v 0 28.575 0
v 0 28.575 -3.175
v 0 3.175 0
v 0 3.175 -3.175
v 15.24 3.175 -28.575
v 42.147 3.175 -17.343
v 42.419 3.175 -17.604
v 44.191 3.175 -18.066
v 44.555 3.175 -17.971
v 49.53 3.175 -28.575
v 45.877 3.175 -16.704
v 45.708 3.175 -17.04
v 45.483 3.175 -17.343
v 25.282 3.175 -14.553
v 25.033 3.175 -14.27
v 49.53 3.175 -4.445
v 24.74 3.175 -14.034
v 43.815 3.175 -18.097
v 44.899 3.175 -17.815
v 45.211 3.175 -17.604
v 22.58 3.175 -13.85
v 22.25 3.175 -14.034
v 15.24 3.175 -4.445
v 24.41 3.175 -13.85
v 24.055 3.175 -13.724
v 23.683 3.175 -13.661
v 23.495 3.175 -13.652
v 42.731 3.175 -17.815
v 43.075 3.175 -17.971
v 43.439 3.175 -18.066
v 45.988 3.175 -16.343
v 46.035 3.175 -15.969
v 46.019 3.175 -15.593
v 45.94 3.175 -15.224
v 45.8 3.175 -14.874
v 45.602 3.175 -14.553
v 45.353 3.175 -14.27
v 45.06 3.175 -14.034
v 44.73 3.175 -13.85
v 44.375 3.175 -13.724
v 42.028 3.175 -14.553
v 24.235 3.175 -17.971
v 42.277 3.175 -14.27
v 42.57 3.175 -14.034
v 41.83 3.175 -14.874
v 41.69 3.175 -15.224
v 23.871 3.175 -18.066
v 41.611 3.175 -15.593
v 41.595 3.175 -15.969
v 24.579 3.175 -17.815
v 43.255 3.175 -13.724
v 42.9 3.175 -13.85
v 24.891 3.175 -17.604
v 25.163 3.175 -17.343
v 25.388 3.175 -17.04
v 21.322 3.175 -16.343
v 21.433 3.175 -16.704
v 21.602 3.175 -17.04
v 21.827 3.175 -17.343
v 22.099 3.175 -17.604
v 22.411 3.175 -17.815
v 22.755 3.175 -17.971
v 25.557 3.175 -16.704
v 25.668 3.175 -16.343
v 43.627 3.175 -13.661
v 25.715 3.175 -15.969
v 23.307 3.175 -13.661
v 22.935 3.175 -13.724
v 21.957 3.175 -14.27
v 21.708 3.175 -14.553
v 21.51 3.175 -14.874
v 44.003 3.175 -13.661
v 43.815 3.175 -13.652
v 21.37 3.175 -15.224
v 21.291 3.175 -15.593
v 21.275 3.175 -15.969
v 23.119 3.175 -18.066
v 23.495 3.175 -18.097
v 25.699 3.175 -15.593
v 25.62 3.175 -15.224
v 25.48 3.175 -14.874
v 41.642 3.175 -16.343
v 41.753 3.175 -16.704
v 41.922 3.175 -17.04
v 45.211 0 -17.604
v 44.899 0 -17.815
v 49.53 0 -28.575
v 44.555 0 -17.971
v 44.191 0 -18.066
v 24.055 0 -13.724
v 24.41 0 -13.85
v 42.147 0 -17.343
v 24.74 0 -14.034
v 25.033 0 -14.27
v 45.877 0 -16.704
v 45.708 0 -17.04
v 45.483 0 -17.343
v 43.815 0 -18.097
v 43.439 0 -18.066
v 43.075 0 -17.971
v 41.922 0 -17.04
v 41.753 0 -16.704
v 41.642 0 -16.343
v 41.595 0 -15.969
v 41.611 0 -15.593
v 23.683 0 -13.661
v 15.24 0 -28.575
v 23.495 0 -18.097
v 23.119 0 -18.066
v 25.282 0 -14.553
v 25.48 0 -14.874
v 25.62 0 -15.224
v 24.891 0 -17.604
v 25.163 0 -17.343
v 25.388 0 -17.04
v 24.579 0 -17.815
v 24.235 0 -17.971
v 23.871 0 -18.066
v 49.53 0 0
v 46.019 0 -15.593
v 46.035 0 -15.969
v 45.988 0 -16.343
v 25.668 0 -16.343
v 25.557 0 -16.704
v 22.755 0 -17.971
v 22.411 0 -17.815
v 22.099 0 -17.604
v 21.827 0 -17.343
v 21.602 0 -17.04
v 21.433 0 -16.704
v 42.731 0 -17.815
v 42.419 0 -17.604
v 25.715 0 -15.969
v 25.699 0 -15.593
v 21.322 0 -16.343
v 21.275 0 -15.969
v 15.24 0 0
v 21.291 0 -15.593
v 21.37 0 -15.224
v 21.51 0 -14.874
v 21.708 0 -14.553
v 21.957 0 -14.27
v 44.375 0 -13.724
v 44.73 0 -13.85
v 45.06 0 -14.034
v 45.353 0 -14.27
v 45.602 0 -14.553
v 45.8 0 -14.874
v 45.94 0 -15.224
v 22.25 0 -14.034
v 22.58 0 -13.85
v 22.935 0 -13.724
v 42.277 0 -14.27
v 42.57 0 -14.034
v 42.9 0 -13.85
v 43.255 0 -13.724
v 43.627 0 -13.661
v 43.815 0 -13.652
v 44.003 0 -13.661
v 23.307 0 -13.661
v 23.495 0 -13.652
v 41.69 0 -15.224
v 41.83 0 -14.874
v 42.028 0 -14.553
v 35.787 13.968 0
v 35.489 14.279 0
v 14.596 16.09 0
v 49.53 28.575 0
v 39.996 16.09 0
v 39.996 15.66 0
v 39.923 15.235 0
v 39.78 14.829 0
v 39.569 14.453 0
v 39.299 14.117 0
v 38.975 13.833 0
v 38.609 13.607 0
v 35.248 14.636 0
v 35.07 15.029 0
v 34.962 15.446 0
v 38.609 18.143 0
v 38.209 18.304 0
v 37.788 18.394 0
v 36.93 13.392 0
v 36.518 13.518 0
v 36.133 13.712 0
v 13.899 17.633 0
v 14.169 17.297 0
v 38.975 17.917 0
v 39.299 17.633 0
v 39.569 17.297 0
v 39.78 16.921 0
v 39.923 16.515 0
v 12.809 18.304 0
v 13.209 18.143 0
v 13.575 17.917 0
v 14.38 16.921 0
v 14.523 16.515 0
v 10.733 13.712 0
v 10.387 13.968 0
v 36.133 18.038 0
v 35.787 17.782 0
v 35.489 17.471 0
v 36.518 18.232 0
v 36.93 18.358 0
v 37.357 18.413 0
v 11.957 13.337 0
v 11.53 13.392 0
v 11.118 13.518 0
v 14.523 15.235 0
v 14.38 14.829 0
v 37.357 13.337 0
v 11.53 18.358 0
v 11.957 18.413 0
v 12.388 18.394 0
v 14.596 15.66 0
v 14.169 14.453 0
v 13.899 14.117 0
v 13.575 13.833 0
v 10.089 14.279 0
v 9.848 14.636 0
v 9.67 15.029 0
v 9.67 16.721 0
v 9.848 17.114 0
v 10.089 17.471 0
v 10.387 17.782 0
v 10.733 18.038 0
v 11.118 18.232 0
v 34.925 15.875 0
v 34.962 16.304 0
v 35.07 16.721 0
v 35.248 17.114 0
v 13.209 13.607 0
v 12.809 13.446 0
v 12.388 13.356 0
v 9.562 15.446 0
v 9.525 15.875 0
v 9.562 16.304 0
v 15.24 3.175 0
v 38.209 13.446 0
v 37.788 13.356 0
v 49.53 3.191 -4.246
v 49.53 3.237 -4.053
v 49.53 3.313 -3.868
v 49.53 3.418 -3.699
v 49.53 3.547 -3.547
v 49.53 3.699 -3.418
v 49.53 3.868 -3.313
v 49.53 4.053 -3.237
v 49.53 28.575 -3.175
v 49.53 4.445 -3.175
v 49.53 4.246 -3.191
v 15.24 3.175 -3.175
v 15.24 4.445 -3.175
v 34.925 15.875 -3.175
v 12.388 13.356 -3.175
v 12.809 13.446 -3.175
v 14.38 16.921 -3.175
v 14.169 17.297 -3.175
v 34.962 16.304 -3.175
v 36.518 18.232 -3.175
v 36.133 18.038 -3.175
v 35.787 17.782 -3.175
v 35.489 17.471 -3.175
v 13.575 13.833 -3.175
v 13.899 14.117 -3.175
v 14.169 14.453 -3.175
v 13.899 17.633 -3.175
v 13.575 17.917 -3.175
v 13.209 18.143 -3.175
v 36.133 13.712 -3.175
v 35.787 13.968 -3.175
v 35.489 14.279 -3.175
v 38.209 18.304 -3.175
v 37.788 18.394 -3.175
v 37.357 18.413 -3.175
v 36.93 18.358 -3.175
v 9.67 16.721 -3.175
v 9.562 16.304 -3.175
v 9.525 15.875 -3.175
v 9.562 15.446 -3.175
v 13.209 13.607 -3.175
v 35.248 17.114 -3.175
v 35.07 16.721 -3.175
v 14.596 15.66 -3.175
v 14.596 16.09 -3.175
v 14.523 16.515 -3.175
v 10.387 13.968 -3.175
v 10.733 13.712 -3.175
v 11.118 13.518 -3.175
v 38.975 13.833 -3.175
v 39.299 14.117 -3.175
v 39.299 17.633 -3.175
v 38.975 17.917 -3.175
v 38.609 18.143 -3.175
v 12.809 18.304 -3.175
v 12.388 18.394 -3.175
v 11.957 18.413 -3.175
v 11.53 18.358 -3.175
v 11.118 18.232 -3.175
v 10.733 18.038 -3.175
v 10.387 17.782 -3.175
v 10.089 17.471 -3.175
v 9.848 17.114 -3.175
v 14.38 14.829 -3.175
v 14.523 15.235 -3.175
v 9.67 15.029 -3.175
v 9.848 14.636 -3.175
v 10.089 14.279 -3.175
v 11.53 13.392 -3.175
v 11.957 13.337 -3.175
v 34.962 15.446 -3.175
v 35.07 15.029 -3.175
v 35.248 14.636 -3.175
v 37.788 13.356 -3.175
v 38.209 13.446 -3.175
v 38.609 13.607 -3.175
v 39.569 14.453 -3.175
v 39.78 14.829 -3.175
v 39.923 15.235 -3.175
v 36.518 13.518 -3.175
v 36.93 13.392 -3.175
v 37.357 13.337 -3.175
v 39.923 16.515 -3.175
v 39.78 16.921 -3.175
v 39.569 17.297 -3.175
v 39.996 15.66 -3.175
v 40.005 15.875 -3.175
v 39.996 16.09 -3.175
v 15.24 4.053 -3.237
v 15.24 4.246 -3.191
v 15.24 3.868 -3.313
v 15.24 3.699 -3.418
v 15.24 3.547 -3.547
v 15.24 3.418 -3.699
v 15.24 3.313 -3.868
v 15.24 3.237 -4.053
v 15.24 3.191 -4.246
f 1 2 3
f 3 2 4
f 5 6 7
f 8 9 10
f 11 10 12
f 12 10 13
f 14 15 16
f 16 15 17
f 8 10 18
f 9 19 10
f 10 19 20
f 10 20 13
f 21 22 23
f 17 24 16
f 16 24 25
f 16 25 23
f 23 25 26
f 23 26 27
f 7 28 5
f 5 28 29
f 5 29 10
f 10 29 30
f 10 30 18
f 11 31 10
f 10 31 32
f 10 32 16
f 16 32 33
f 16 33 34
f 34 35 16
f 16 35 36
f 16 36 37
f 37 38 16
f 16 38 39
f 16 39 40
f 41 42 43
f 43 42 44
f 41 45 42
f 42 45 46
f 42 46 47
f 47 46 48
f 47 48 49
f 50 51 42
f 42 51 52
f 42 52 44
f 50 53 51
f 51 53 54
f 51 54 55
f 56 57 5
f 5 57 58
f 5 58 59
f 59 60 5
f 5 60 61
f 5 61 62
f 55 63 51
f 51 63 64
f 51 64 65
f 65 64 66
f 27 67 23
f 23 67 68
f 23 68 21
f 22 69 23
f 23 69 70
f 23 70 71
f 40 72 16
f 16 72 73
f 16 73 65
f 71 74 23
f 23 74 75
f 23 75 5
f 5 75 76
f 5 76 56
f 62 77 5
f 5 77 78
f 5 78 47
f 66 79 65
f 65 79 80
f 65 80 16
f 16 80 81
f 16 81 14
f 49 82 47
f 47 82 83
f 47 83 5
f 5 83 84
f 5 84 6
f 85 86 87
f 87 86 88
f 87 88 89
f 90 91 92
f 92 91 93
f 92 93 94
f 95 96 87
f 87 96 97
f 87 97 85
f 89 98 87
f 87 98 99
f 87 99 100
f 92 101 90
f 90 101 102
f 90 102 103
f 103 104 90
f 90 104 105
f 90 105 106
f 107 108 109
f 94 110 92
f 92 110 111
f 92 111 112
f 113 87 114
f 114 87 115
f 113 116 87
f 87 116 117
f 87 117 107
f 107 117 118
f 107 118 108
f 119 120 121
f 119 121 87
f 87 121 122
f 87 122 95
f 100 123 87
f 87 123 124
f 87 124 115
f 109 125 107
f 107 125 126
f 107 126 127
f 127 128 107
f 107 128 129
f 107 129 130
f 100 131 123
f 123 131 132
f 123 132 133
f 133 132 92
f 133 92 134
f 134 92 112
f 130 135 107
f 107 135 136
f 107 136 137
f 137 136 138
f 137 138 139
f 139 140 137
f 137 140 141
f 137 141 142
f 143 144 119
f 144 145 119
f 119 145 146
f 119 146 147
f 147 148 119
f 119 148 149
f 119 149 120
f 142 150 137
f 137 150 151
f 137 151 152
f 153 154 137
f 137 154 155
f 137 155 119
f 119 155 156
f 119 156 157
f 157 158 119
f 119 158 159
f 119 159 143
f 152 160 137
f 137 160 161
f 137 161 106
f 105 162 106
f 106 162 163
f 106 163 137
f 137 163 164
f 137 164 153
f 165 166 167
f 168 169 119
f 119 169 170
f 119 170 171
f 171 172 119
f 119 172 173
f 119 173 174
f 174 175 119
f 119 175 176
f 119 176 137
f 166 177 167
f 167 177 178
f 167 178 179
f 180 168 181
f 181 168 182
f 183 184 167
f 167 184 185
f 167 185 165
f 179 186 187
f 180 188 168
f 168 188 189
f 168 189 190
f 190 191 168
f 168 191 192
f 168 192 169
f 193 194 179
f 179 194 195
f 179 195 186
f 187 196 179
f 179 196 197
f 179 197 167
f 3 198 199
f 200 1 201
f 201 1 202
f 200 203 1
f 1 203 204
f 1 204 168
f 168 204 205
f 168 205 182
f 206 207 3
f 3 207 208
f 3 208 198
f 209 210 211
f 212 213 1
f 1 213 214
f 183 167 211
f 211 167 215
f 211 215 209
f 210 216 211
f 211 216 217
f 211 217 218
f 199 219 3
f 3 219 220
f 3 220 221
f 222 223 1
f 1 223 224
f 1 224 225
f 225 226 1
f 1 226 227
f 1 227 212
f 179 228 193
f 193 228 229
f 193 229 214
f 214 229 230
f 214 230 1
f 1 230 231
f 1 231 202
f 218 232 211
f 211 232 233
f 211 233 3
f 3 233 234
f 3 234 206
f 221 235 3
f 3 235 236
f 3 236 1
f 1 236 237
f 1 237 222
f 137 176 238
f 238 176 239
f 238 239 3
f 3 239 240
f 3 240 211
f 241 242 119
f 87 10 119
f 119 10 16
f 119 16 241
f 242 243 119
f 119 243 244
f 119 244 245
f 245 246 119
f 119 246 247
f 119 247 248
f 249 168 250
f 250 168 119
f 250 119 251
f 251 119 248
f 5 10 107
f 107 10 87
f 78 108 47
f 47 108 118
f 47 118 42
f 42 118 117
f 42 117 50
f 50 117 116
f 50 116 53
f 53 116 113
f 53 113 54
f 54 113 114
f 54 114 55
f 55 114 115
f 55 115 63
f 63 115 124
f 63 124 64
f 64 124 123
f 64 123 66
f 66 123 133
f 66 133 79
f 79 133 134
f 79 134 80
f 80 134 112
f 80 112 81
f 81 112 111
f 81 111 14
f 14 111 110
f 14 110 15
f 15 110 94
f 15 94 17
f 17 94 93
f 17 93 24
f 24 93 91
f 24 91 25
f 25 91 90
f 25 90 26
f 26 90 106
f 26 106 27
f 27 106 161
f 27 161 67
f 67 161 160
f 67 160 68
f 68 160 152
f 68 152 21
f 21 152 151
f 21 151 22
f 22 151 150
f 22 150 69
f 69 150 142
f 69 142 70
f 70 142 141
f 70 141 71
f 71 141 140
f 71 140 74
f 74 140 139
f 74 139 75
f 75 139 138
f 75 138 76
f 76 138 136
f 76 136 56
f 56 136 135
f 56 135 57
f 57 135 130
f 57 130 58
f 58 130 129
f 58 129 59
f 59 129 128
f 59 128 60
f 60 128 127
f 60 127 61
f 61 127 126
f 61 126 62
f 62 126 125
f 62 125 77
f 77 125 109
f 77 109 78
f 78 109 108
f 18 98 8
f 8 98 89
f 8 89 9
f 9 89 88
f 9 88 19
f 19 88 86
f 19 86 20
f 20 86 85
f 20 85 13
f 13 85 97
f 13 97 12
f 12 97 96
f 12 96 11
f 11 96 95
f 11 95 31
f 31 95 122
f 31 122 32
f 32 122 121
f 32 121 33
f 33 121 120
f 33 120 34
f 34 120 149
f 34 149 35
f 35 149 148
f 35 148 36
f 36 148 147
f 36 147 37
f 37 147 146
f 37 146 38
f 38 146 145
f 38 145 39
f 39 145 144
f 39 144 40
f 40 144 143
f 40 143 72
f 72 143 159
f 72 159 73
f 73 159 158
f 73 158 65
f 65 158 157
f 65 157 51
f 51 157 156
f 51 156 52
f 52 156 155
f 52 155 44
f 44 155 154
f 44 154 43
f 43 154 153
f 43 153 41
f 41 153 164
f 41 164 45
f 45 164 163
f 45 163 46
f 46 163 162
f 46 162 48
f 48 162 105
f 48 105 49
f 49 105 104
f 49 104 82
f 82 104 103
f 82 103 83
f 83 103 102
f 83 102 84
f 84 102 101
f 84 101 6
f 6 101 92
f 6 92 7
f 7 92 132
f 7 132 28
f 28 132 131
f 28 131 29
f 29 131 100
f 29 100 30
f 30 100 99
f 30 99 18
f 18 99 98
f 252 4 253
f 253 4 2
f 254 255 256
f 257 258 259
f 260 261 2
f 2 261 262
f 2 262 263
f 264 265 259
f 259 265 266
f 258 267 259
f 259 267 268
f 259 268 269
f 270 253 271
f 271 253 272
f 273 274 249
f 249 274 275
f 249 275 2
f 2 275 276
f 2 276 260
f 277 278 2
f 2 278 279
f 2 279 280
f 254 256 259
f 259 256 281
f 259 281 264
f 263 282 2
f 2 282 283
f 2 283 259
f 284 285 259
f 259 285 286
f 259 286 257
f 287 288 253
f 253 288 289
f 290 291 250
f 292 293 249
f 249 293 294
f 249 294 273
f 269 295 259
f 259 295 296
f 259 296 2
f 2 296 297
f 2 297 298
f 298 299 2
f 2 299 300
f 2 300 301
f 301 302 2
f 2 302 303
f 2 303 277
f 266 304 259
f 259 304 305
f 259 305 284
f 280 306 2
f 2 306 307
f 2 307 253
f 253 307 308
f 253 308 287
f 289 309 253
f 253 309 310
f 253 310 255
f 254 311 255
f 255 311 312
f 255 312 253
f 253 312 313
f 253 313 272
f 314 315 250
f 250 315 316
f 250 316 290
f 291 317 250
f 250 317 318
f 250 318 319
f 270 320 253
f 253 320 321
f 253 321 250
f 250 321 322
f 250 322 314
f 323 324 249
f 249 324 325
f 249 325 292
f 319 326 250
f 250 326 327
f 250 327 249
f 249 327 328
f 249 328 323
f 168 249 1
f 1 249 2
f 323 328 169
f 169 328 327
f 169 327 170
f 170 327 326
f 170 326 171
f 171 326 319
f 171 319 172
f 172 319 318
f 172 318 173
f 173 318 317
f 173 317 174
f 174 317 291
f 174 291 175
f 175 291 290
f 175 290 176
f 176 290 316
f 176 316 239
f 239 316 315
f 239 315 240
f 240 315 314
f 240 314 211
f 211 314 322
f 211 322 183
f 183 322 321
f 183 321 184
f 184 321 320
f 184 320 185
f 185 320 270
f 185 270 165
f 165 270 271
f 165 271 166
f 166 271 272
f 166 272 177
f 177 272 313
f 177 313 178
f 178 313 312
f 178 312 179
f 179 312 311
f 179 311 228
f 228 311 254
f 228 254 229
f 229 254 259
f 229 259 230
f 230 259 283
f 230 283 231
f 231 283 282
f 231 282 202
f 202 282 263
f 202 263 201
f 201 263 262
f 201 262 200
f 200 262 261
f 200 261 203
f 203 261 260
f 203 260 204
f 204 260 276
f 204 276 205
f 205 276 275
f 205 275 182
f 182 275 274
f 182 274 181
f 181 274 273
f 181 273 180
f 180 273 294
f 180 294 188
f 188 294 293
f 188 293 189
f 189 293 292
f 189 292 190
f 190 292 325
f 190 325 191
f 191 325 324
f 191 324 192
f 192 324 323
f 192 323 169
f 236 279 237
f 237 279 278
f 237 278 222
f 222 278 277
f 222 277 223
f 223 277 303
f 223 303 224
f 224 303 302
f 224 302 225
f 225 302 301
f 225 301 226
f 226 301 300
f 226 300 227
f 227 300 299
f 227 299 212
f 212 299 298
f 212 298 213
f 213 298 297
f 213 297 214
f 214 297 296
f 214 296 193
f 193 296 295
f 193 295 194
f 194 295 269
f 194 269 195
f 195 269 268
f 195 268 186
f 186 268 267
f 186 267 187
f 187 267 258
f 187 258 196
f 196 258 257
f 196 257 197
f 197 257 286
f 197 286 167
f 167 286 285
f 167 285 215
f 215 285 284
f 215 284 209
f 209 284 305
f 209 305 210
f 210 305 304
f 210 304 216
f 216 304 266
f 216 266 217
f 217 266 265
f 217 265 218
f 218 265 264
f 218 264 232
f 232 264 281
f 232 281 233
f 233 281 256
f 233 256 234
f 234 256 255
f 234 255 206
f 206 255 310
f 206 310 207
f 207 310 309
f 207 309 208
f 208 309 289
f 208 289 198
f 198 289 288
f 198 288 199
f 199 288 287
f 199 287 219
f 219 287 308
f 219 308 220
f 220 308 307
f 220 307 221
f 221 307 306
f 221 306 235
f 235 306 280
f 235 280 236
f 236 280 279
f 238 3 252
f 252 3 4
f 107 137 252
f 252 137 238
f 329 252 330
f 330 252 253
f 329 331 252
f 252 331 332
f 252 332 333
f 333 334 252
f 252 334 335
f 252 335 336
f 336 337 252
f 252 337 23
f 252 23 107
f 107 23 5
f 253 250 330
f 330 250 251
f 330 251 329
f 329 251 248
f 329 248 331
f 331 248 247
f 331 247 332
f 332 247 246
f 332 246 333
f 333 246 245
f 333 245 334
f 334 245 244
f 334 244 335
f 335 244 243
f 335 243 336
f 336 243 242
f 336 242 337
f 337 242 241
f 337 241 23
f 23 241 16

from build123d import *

# Parameters (mm, degrees)
SKETCH1_W           = 49.53
SKETCH1_H           = 28.575
SKETCH1_R           = 2.2225
BOSS_EXTRUDE1_DEPTH = 3.175
SKETCH2_W           = 49.53
SKETCH2_H           = 3.175
BOSS_EXTRUDE2_DEPTH = 25.4
SKETCH4_R           = 2.54
CUT_EXTRUDE1_DEPTH  = 3.175
SKETCH5_W           = 15.24
SKETCH5_H           = 28.575
CUT_EXTRUDE2_DEPTH  = 3.175
FILLET2_R           = 1.27


with BuildPart() as part:
    # Sketch1 → Boss-Extrude1 (new body)
    with BuildSketch(Plane(origin=(0, 0, 0), x_dir=(1, 0, 0), z_dir=(0, 1, 0))):
        with Locations((24.765, 14.2875)):
            Rectangle(SKETCH1_W, SKETCH1_H)
        with Locations(Location((23.495, 15.875, 0), (0, 0, 270))):
            Circle(SKETCH1_R, mode=Mode.SUBTRACT)
        with Locations(Location((43.815, 15.875, 0), (0, 0, 270))):
            Circle(SKETCH1_R, mode=Mode.SUBTRACT)
    extrude(amount=BOSS_EXTRUDE1_DEPTH)

    # Sketch2 → Boss-Extrude2 (add)
    with BuildSketch(Plane(origin=(0, 3.175, 0), x_dir=(1, 0, 0), z_dir=(0, 1, 0))):
        with Locations((24.765, 1.5875)):
            Rectangle(SKETCH2_W, SKETCH2_H)
    extrude(amount=BOSS_EXTRUDE2_DEPTH)

    # Sketch4 → Cut-Extrude1 (cut)
    with BuildSketch(Plane(origin=(0, 0, -3.175), x_dir=(-1, 0, 0), z_dir=(0, 0, -1))):
        with Locations((-12.065, 15.875)):
            Circle(SKETCH4_R)
        with Locations((-37.465, 15.875)):
            Circle(SKETCH4_R)
    extrude(amount=-CUT_EXTRUDE1_DEPTH, mode=Mode.SUBTRACT)

    # Sketch5 → Cut-Extrude2 (cut)
    with BuildSketch(Plane.XZ):
        with Locations((7.62, -14.2875)):
            Rectangle(SKETCH5_W, SKETCH5_H)
    extrude(amount=-CUT_EXTRUDE2_DEPTH, mode=Mode.SUBTRACT)

    # Fillet2
    fillet2_edges = [part.edges().sort_by_distance(p)[0] for p in [
        (32.385, 3.175, -3.175),
    ]]
    fillet(fillet2_edges, radius=FILLET2_R)


solid = part.part
